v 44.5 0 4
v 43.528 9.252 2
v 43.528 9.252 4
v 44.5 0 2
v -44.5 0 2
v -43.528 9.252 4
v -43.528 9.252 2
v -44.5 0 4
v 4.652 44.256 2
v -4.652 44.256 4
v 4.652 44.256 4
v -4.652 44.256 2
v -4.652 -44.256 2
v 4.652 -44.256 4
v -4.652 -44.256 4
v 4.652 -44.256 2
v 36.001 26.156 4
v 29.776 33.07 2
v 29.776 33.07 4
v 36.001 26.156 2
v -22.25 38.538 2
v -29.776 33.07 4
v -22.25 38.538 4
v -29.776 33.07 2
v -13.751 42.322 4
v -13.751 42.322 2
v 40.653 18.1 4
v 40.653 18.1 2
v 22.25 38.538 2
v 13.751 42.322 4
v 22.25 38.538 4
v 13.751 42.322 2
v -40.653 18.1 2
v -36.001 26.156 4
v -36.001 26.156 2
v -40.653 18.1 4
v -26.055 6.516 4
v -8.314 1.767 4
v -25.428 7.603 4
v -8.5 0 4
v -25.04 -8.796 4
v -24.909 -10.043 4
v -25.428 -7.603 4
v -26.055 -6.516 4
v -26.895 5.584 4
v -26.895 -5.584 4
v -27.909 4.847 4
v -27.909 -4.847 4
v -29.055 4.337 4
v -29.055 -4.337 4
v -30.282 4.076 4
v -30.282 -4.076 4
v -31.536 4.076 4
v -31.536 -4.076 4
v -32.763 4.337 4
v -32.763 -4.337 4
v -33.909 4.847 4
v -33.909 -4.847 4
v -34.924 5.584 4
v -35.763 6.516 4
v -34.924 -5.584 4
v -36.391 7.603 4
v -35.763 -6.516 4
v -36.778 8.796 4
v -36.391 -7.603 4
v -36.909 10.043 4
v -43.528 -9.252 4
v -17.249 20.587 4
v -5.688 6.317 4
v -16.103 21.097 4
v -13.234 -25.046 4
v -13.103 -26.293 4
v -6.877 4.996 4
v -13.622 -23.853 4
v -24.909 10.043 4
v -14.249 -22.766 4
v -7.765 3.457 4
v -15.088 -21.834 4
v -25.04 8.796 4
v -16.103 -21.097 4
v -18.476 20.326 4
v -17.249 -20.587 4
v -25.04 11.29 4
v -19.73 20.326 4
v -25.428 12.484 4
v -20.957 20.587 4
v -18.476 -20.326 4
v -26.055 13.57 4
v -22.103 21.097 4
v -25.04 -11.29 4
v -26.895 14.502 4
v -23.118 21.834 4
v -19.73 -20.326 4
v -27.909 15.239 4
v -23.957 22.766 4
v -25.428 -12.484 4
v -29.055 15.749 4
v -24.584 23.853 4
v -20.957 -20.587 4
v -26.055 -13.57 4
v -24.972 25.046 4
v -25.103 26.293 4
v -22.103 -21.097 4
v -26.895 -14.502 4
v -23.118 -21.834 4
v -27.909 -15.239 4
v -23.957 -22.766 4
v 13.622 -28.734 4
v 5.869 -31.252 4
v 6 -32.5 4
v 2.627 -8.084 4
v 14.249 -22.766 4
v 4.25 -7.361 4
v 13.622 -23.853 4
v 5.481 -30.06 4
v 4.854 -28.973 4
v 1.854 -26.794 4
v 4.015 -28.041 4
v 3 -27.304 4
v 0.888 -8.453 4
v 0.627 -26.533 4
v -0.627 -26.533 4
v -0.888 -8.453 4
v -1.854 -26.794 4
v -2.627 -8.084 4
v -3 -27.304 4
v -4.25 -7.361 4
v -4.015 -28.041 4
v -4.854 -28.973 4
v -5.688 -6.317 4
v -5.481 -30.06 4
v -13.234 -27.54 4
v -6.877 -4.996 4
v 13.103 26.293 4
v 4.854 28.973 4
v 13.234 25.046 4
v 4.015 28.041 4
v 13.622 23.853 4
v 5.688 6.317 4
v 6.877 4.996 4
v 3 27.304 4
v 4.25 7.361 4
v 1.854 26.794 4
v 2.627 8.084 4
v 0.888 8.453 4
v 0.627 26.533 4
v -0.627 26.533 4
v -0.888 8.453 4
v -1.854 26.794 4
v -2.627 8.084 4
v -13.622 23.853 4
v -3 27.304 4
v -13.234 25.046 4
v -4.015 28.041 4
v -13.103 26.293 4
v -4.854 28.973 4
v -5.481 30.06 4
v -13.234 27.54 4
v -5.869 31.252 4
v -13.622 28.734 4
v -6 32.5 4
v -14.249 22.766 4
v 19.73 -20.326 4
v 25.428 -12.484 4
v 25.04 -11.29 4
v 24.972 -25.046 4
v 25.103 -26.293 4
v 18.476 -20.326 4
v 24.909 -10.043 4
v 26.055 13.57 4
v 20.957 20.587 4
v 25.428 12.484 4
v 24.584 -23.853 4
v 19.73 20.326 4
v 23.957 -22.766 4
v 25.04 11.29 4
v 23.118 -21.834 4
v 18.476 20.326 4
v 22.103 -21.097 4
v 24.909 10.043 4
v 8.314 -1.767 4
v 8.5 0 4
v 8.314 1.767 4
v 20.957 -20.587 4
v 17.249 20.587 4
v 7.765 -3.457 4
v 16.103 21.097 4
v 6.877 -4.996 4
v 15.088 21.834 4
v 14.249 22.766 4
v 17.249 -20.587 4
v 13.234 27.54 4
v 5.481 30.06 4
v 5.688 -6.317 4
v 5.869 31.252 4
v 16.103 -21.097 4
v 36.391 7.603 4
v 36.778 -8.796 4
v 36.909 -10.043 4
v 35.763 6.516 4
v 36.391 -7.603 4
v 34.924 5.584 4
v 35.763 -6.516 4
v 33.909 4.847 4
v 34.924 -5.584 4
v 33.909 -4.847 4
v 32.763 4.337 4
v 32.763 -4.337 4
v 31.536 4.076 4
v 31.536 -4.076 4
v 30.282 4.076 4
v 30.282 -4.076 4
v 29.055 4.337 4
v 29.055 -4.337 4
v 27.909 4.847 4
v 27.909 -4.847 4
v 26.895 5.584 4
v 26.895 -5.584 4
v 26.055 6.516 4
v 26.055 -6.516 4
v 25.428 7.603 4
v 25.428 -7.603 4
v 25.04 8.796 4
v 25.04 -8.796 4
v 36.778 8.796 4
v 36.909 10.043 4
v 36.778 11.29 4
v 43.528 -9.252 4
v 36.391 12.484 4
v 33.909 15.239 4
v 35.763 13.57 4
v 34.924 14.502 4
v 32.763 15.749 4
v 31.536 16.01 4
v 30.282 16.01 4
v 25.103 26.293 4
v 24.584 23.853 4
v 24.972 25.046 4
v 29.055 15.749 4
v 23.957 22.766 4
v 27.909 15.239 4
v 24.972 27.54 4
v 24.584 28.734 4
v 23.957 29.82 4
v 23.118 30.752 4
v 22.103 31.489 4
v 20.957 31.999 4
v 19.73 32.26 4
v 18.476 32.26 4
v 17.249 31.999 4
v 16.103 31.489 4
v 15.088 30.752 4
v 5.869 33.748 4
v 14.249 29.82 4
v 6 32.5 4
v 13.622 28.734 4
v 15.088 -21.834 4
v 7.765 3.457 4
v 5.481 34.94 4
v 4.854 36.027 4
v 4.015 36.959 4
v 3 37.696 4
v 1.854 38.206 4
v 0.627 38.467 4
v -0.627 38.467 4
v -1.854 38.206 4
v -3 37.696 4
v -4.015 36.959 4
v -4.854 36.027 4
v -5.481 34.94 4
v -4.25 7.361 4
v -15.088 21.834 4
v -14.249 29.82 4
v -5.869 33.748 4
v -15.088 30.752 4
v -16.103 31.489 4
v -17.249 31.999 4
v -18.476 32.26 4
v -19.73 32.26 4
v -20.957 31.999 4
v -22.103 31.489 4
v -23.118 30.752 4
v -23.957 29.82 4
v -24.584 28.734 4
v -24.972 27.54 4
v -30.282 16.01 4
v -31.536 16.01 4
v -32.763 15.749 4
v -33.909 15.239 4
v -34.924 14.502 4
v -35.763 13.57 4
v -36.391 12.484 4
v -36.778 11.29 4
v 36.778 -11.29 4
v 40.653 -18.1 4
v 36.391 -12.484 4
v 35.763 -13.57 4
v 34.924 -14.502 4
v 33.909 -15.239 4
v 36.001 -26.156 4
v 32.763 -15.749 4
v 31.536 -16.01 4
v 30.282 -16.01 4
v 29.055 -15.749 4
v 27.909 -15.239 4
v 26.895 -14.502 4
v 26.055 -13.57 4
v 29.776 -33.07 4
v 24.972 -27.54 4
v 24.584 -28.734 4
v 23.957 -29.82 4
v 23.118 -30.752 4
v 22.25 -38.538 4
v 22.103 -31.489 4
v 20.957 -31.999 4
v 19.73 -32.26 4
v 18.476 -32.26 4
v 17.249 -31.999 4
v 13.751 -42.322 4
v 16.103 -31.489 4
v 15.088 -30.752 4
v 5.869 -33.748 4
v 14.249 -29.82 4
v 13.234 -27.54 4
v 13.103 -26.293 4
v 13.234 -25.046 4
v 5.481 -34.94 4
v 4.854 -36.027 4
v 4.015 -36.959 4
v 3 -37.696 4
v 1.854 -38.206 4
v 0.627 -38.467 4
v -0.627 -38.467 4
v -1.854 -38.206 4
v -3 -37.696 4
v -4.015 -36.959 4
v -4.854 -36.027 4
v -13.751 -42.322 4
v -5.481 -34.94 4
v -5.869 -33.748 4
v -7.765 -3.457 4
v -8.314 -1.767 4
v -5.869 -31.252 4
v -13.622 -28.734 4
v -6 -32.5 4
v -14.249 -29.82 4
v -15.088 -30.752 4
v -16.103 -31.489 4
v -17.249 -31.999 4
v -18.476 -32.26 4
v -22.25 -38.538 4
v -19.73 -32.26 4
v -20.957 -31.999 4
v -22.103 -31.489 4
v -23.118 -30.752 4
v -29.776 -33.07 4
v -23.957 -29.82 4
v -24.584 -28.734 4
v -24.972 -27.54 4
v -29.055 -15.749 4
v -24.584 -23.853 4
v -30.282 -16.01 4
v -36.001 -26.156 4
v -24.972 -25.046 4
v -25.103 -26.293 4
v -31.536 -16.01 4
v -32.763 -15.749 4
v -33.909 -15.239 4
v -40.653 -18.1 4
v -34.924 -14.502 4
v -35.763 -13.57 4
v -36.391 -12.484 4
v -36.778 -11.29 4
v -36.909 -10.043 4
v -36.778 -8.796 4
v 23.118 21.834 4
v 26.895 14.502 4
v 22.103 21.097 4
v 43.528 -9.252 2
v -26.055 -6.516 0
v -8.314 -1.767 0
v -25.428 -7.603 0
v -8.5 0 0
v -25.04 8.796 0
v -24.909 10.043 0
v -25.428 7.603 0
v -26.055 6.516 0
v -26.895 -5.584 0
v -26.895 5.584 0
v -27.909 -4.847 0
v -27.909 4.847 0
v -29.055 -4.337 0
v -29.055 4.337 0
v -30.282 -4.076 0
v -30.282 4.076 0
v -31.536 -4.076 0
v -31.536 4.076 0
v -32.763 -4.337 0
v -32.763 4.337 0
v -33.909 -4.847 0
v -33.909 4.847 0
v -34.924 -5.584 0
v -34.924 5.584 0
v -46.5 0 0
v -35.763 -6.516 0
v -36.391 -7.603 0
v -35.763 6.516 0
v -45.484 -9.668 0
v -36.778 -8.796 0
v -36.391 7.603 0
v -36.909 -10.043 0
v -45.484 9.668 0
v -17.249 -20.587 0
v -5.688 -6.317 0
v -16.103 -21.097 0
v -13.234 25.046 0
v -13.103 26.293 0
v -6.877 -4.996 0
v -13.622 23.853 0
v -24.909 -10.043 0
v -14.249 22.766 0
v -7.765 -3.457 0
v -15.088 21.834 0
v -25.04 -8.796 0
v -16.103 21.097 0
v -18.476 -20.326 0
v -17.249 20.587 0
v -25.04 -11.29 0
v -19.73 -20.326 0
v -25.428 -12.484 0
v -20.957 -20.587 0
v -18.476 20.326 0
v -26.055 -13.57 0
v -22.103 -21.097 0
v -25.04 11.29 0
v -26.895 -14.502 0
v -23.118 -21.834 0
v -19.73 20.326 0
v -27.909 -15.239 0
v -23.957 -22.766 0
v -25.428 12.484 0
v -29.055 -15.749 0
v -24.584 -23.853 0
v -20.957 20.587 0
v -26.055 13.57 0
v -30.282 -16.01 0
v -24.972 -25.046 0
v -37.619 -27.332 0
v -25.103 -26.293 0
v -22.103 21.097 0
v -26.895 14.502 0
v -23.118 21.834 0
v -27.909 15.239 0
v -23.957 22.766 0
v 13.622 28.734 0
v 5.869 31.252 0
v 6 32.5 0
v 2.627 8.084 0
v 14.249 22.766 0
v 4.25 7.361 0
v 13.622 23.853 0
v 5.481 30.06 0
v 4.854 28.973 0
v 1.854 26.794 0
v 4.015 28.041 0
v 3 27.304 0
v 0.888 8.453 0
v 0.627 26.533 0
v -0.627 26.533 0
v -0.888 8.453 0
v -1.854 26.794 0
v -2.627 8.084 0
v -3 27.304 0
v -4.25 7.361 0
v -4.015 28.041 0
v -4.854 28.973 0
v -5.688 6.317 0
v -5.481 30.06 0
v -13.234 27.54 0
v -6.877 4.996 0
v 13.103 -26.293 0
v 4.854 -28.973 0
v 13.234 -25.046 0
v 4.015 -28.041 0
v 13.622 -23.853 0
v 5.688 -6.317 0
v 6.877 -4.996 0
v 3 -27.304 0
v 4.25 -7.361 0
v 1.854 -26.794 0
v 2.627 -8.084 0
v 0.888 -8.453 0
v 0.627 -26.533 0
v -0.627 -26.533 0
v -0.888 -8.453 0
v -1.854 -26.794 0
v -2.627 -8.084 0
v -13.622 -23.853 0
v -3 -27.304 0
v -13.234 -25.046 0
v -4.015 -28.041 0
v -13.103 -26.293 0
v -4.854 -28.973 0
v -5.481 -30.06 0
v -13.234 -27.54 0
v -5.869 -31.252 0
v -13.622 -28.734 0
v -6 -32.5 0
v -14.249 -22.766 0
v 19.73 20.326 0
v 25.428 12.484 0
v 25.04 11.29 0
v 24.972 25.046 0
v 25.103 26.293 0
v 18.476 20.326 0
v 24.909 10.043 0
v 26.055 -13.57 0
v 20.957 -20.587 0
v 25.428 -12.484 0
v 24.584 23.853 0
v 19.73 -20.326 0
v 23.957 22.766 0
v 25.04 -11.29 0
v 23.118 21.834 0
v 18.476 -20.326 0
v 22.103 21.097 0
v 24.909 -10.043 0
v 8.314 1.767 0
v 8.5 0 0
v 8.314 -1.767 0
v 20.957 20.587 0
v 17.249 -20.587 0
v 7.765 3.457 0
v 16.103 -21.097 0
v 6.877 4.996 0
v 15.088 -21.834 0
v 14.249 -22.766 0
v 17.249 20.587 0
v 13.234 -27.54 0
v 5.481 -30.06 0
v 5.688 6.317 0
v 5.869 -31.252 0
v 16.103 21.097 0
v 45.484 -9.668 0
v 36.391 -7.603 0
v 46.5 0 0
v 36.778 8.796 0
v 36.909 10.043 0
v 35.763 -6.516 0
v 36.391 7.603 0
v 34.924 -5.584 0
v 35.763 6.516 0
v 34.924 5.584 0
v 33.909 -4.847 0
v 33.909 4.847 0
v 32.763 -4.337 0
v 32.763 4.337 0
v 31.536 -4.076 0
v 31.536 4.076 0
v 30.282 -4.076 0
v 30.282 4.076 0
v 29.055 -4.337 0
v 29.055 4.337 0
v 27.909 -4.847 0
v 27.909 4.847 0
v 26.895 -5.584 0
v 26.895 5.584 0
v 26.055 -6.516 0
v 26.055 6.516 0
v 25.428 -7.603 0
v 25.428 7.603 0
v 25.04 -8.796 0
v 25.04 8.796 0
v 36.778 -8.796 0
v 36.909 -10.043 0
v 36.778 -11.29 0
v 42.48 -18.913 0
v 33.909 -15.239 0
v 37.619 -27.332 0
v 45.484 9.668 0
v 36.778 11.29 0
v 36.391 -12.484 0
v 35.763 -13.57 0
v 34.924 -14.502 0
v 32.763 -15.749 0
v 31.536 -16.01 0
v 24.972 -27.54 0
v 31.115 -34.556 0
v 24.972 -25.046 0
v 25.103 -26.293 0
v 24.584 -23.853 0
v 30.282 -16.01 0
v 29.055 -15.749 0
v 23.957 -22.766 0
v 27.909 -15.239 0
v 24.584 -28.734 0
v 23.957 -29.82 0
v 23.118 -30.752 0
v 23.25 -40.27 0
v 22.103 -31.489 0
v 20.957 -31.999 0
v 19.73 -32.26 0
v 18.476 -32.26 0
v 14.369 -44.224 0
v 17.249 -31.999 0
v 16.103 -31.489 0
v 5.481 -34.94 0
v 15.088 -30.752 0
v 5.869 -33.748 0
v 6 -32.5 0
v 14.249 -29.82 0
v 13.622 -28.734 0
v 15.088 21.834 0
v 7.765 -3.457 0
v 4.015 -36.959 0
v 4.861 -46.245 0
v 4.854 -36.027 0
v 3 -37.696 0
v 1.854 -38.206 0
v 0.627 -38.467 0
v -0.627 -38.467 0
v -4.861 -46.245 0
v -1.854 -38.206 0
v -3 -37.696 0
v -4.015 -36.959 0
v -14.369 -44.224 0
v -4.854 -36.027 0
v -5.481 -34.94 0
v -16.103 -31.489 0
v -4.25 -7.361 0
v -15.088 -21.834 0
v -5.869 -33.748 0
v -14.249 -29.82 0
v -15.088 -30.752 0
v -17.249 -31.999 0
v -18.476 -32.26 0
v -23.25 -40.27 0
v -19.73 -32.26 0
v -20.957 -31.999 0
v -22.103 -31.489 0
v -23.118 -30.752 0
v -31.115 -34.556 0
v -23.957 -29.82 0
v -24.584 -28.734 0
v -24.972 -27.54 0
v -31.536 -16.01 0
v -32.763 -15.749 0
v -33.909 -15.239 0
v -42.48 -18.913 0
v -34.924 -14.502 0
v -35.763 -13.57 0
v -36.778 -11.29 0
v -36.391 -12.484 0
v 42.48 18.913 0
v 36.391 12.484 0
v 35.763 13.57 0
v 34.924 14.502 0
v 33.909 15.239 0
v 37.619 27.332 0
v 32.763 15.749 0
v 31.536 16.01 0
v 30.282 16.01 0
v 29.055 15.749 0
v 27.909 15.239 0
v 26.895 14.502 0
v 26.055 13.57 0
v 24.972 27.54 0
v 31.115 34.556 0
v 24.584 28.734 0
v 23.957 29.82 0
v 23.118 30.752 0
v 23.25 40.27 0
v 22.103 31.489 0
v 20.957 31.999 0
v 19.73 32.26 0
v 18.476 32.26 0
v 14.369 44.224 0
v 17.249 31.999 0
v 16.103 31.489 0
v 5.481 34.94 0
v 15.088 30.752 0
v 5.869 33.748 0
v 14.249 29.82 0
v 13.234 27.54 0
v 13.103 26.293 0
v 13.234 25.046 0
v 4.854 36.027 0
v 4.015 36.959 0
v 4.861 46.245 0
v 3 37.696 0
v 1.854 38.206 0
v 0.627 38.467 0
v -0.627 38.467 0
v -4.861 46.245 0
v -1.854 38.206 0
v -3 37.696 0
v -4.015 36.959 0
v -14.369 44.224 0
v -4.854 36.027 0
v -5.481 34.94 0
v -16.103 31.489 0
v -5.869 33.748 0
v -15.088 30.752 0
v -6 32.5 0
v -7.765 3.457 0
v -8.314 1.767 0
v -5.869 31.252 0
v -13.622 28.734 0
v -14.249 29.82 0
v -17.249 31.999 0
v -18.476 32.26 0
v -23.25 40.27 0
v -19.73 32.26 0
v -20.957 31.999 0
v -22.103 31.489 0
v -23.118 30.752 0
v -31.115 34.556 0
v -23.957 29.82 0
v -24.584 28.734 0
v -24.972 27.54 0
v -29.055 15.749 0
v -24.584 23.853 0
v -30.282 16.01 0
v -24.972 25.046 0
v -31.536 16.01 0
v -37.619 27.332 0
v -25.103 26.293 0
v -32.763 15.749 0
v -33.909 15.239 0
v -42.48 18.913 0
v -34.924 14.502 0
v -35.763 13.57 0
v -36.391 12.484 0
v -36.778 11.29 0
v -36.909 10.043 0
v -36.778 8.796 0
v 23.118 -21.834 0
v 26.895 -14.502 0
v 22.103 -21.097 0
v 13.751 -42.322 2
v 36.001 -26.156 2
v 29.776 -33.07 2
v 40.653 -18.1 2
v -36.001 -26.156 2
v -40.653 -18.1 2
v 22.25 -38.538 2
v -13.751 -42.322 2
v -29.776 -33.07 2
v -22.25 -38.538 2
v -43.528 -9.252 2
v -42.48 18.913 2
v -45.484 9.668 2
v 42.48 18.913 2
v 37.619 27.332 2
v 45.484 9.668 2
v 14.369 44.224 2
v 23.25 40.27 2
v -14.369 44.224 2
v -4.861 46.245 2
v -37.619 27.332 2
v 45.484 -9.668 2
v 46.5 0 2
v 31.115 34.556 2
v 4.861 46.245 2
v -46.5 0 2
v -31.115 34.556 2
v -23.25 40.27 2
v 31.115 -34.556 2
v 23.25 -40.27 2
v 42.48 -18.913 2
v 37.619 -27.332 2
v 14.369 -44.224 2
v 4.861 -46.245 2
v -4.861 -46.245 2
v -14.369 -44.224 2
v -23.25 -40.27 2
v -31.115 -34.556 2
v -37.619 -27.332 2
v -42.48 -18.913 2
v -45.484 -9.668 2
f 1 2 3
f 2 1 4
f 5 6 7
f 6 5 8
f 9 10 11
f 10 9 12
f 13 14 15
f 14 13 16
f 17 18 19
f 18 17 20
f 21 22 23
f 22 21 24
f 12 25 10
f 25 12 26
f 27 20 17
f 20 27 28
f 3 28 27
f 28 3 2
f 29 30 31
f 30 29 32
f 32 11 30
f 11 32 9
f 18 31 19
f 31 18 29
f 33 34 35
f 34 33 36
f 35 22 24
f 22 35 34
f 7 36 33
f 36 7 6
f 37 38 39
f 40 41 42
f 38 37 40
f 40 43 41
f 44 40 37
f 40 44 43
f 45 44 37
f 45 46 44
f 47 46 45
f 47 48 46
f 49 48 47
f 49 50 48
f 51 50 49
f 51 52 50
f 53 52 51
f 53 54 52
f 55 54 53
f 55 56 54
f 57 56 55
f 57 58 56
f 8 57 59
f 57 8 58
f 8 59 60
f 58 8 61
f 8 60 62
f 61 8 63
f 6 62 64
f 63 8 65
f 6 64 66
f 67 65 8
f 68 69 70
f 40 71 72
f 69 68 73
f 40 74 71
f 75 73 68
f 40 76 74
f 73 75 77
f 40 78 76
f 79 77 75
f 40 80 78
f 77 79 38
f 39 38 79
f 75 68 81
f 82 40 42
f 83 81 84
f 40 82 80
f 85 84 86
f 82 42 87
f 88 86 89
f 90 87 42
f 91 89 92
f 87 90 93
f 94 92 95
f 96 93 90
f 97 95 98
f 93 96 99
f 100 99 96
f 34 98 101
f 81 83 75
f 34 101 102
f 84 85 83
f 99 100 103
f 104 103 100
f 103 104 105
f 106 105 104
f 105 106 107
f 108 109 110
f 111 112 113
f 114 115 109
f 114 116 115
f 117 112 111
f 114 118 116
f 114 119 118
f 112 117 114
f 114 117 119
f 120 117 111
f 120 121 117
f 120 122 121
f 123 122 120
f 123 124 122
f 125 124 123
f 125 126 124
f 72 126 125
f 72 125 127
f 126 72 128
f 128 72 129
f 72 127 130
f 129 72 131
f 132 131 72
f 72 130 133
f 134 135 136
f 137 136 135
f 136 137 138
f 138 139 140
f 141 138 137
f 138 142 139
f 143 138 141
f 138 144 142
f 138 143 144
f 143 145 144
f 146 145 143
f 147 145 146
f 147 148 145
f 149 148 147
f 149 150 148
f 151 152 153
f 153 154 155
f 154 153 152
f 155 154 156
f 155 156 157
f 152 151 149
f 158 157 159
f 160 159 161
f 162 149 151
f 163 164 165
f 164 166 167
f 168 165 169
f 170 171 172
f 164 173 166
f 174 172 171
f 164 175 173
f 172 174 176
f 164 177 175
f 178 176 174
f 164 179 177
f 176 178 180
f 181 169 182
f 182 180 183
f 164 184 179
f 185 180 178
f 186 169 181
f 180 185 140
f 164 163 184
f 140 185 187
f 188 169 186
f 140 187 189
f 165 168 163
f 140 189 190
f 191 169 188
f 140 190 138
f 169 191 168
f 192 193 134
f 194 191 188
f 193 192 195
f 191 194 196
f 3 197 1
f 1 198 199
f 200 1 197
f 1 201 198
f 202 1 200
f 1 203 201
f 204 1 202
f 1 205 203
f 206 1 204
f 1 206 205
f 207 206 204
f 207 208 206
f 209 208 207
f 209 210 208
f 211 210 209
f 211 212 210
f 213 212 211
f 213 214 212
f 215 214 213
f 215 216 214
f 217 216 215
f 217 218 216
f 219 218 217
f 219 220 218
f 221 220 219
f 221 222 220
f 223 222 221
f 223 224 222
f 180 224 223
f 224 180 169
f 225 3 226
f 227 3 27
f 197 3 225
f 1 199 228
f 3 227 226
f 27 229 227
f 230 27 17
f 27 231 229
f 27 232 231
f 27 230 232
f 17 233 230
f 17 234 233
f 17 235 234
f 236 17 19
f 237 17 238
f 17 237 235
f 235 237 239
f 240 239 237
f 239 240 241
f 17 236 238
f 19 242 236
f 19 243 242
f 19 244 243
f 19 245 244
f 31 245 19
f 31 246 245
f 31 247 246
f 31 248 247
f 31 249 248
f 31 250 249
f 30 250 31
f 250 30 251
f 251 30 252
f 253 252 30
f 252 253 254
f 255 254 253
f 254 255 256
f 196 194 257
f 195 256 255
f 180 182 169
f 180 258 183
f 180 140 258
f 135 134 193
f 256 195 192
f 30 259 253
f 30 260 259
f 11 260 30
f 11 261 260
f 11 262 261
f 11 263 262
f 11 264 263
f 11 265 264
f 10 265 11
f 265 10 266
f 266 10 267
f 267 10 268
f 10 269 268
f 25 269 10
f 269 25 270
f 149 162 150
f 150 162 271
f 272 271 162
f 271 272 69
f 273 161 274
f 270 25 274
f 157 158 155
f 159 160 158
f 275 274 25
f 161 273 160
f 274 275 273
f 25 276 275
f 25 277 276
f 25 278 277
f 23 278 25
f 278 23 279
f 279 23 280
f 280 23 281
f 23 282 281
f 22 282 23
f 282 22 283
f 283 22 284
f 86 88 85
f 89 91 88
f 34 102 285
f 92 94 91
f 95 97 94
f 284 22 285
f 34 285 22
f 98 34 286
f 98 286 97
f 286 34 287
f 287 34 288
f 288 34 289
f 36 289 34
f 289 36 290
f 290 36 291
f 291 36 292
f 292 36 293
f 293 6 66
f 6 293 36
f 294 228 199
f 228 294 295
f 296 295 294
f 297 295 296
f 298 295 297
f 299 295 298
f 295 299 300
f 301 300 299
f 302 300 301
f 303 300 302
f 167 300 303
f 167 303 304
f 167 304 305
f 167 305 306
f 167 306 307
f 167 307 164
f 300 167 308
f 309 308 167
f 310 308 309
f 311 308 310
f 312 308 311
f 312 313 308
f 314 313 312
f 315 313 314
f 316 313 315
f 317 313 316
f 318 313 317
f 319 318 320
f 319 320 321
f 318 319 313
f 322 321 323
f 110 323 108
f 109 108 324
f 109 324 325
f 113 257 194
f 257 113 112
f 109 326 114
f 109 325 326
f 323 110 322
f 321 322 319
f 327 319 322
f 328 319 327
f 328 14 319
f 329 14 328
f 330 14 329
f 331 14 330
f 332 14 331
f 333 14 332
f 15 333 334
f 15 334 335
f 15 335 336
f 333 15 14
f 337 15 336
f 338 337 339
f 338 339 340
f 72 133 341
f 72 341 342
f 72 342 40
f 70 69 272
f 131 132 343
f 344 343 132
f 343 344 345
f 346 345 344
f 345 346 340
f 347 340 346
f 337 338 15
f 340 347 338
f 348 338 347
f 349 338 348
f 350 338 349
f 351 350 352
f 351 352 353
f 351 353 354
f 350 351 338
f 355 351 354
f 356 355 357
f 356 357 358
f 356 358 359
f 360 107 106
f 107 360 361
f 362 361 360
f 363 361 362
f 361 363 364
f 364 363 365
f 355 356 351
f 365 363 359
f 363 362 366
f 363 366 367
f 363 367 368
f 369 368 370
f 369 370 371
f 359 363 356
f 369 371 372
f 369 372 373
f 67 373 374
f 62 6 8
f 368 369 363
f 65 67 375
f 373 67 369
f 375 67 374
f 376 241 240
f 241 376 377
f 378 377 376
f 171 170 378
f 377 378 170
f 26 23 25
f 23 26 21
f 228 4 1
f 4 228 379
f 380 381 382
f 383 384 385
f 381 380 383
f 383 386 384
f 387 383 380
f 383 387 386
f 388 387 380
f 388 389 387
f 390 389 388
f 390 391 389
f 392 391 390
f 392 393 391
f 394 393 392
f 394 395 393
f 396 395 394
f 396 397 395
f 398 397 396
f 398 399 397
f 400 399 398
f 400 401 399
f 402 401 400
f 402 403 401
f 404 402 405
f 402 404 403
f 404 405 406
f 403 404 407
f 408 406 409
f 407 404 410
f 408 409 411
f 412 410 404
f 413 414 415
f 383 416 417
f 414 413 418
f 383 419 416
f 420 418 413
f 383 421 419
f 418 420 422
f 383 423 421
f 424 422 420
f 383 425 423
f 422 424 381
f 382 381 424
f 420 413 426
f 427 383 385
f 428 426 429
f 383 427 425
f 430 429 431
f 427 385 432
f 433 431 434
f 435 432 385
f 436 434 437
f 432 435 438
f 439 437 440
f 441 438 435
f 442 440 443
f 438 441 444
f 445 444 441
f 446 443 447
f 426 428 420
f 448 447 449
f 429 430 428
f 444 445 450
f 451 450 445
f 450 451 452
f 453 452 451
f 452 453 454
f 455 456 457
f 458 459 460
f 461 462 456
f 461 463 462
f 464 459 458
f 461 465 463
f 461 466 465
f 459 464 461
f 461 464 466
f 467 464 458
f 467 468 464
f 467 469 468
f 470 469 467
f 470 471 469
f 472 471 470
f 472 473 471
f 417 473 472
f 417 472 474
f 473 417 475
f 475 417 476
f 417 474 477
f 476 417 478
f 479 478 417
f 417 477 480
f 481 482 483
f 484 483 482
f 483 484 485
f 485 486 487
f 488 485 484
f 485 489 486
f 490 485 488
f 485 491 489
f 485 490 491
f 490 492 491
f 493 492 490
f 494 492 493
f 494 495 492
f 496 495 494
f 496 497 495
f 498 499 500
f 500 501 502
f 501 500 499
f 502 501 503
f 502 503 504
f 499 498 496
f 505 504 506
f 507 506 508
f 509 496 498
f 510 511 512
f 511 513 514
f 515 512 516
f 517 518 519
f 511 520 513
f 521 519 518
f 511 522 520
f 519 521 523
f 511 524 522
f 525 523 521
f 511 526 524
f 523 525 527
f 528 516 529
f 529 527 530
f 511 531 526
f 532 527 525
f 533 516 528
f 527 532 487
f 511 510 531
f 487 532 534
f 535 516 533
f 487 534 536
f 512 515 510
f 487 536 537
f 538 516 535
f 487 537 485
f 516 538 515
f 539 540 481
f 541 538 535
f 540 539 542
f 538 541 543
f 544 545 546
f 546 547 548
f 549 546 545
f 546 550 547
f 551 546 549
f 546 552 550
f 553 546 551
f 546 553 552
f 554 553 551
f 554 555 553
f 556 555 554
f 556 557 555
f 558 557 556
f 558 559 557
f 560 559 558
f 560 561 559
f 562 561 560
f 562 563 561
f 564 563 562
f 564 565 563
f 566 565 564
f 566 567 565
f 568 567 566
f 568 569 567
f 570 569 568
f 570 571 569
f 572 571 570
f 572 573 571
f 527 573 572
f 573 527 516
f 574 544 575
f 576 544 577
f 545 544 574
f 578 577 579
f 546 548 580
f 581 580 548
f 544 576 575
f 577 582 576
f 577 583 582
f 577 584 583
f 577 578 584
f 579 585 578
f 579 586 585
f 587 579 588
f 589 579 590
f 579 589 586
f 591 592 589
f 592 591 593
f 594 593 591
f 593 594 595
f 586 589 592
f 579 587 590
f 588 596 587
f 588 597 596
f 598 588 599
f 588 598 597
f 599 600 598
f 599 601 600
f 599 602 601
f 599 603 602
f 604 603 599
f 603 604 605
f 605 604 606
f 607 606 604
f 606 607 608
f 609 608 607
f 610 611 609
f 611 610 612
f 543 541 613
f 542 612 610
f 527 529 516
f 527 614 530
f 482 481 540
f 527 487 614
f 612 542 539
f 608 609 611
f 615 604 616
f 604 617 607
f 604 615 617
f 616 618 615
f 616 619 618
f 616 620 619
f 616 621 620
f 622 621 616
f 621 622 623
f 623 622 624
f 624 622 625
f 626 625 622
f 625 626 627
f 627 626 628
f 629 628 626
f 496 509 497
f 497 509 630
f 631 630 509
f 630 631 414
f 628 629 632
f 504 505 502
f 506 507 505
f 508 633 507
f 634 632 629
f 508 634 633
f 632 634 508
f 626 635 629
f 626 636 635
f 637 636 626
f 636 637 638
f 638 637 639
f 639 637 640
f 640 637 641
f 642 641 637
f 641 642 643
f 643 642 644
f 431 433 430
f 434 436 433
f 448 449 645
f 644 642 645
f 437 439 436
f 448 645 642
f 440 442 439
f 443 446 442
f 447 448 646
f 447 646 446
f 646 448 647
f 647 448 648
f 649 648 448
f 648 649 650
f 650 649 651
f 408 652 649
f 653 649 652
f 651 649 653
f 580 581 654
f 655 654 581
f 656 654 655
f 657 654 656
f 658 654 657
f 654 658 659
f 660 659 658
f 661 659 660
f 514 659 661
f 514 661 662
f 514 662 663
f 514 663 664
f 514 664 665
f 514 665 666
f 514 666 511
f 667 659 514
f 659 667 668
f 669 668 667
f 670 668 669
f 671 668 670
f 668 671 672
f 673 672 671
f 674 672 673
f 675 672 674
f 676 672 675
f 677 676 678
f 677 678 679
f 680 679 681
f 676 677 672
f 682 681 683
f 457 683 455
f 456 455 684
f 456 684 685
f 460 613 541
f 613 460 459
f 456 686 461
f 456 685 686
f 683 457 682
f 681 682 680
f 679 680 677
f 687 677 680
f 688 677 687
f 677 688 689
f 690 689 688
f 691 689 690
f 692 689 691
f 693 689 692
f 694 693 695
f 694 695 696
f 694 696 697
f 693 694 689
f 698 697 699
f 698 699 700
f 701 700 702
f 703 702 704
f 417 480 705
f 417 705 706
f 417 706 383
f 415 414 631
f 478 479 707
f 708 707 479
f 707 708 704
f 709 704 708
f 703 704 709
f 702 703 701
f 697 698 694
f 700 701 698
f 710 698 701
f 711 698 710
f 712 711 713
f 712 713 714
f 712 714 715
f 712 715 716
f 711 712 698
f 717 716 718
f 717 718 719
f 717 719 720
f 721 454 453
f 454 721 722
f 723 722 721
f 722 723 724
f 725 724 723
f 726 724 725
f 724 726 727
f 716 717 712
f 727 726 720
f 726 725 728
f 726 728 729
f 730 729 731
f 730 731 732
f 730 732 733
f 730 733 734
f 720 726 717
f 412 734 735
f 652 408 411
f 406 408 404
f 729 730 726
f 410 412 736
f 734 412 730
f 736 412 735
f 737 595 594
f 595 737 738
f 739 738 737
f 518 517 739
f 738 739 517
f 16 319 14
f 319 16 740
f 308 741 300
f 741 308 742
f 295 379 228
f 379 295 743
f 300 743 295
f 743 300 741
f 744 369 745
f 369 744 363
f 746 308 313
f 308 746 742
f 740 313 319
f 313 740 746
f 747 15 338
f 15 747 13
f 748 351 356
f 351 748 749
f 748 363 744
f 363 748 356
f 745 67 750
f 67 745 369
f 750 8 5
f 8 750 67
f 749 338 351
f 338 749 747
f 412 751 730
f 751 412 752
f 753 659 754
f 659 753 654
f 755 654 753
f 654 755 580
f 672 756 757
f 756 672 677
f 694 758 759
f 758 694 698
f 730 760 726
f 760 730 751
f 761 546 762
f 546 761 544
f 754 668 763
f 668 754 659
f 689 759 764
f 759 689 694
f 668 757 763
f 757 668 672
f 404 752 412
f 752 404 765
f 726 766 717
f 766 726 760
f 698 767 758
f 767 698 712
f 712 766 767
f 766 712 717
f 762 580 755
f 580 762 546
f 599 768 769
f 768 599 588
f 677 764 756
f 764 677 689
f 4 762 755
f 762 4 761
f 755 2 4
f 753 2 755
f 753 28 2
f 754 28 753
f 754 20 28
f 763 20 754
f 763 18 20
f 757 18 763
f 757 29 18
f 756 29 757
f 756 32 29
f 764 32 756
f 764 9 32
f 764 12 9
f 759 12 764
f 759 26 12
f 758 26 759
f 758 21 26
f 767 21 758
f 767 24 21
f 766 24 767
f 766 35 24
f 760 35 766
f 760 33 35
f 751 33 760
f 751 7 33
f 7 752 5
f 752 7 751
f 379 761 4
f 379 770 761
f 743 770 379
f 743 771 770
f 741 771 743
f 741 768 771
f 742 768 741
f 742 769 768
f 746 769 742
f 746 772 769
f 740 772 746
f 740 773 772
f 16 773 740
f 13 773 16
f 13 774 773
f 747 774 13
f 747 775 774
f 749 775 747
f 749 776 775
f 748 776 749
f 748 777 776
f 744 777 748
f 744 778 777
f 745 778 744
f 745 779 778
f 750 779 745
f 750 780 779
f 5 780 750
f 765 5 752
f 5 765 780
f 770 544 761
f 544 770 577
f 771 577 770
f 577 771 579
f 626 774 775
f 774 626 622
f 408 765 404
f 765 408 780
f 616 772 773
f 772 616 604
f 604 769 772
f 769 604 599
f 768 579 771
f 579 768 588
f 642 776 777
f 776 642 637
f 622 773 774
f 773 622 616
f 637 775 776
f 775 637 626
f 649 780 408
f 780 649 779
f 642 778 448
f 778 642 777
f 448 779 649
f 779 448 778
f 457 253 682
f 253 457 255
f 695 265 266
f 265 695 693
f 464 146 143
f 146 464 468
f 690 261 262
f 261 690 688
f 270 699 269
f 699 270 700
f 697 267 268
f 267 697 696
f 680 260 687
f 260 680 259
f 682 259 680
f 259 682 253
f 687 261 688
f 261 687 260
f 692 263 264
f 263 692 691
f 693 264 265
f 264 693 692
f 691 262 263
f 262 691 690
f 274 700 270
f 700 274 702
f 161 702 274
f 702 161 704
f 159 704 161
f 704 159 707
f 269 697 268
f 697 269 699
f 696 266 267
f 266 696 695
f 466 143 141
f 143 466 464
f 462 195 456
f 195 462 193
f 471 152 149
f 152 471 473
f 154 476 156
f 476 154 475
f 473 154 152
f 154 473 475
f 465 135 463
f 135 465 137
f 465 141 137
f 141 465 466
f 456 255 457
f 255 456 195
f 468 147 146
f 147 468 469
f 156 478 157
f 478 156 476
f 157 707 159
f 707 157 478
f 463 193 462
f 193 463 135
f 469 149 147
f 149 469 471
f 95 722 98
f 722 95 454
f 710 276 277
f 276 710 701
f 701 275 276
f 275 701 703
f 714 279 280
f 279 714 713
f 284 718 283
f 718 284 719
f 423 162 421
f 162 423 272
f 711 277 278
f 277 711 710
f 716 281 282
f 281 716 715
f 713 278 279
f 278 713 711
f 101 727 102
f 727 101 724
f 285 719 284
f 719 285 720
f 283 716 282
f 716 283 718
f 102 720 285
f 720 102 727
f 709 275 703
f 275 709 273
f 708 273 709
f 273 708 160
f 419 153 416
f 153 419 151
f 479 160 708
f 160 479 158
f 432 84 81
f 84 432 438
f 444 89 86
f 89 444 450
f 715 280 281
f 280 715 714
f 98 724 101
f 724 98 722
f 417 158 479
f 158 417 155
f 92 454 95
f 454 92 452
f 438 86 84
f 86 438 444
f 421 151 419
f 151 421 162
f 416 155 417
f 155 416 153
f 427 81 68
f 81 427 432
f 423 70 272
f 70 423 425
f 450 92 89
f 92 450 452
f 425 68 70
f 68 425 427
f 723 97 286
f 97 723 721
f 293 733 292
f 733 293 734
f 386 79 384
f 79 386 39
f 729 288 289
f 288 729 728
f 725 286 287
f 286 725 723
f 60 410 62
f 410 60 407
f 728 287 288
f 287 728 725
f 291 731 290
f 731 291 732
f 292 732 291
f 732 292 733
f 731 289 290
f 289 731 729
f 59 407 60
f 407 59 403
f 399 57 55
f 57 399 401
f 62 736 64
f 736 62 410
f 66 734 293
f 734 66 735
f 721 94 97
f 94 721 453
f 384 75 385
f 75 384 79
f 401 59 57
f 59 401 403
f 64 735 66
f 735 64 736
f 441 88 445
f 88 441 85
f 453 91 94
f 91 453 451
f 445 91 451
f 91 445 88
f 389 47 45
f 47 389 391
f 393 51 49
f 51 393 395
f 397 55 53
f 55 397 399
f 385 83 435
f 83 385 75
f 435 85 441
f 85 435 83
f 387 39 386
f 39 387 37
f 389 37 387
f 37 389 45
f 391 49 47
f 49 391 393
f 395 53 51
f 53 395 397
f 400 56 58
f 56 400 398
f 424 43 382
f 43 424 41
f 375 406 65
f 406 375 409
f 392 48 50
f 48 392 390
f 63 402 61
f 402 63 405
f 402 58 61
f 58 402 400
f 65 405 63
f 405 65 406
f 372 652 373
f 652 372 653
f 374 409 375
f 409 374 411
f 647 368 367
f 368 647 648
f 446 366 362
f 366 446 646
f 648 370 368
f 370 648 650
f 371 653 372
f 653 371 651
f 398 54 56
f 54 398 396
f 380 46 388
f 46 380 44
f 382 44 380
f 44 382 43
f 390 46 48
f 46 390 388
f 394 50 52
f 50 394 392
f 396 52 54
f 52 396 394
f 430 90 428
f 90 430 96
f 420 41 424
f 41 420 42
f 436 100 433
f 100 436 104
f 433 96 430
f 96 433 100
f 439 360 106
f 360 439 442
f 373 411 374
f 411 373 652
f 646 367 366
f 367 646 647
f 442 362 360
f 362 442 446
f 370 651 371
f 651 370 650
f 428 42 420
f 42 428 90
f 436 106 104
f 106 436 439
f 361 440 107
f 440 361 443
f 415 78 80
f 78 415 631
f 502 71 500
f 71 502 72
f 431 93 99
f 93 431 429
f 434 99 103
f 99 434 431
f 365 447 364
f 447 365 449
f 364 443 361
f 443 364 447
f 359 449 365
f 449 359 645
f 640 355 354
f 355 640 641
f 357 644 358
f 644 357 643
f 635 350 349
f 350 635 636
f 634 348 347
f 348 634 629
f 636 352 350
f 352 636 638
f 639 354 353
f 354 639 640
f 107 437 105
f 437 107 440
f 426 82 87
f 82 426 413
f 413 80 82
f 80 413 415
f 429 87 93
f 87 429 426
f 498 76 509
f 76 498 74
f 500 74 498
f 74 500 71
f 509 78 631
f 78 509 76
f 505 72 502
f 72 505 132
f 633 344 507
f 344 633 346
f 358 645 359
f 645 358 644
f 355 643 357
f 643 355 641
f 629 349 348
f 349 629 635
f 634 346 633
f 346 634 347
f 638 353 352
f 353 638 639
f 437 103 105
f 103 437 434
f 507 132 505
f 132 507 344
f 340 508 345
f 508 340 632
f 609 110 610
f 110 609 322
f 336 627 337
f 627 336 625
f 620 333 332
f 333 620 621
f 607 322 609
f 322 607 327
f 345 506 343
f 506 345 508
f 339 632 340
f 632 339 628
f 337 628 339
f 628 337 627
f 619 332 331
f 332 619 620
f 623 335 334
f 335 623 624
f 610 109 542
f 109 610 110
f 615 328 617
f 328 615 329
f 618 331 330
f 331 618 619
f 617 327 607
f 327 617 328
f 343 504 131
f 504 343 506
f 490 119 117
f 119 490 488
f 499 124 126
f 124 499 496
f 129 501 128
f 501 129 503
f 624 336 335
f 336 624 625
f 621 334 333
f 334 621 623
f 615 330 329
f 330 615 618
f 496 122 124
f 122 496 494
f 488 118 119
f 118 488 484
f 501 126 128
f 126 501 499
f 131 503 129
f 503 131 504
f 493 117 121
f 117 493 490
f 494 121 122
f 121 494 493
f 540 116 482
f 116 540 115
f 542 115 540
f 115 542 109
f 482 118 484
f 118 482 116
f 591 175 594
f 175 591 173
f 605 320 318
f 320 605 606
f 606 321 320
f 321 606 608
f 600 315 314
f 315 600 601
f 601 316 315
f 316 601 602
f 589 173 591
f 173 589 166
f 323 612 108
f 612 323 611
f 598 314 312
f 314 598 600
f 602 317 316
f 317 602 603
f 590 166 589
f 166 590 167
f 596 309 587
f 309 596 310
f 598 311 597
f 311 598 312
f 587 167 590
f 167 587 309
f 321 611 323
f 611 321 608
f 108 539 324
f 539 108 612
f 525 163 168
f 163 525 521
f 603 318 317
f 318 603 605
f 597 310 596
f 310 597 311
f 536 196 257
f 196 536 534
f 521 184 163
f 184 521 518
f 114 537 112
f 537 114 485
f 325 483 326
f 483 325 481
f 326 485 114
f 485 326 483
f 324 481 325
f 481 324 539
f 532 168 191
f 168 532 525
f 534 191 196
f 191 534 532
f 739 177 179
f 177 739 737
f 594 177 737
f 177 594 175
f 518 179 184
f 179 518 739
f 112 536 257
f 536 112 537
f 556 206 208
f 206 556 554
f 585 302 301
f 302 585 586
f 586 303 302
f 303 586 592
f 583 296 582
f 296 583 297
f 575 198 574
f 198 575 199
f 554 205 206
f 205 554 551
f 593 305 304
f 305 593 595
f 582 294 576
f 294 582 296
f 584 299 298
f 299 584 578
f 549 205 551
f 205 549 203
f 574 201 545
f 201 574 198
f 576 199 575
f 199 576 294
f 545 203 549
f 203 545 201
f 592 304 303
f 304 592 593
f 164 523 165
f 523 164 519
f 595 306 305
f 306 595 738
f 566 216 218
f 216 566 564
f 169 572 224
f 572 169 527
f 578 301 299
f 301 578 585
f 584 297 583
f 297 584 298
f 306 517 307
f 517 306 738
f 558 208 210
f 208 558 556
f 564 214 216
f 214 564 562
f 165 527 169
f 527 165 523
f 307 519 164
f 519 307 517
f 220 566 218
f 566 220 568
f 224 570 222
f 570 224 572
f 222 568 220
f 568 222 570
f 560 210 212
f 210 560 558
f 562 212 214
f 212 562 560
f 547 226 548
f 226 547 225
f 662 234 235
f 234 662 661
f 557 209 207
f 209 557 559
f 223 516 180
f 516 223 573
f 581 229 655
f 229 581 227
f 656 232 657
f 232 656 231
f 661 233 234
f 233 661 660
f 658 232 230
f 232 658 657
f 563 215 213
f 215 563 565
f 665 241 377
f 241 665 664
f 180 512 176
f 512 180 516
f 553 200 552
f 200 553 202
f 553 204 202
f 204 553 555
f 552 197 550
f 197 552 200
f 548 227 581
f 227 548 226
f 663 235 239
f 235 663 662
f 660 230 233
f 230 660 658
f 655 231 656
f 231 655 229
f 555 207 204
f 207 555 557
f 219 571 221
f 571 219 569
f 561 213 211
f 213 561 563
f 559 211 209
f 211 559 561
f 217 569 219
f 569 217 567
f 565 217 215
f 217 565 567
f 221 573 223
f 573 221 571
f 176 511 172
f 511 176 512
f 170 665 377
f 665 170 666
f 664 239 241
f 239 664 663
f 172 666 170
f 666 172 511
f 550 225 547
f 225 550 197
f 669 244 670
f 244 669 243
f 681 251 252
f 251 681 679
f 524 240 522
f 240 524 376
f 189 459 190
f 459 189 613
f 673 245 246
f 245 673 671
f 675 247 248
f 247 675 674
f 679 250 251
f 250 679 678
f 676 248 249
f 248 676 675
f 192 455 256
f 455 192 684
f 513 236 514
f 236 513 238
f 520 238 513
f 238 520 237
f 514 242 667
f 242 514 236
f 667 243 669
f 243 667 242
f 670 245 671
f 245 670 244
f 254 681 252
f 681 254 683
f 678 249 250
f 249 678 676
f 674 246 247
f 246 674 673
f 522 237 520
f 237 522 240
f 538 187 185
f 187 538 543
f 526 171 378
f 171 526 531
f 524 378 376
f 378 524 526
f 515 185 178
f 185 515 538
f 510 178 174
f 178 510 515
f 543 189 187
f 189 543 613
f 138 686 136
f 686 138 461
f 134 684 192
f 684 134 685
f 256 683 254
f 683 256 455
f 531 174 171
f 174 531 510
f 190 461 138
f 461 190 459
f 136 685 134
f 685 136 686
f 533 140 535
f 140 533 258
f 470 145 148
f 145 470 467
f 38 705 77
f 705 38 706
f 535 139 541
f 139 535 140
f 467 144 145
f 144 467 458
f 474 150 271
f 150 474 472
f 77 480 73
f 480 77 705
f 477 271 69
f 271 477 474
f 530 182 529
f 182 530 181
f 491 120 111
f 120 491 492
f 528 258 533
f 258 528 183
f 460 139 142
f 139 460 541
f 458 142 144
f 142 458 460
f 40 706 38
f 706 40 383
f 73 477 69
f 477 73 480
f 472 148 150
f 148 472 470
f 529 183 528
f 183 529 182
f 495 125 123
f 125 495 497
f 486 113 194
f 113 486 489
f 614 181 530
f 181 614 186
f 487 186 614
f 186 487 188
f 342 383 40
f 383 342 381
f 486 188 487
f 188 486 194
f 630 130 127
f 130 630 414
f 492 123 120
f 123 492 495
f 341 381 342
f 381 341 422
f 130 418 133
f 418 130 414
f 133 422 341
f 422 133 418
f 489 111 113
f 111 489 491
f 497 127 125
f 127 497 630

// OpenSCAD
$fn = 30;
N = 10;

shaft_diam = 17;

eppen_ring = 65;
eppen_diameter = 12;

difference(){
    union(){
        cylinder(d=eppen_ring + 24,h=4);
        cylinder(d=93,h=2);
    }

    union(){
        for(i = [0:N-1]){
            rotate([0,0,(360/N) * i]) translate([0,eppen_ring/2,0]) cylinder(d=eppen_diameter,h=5);
        }
        cylinder(d=shaft_diam,h=5);
    }
}
